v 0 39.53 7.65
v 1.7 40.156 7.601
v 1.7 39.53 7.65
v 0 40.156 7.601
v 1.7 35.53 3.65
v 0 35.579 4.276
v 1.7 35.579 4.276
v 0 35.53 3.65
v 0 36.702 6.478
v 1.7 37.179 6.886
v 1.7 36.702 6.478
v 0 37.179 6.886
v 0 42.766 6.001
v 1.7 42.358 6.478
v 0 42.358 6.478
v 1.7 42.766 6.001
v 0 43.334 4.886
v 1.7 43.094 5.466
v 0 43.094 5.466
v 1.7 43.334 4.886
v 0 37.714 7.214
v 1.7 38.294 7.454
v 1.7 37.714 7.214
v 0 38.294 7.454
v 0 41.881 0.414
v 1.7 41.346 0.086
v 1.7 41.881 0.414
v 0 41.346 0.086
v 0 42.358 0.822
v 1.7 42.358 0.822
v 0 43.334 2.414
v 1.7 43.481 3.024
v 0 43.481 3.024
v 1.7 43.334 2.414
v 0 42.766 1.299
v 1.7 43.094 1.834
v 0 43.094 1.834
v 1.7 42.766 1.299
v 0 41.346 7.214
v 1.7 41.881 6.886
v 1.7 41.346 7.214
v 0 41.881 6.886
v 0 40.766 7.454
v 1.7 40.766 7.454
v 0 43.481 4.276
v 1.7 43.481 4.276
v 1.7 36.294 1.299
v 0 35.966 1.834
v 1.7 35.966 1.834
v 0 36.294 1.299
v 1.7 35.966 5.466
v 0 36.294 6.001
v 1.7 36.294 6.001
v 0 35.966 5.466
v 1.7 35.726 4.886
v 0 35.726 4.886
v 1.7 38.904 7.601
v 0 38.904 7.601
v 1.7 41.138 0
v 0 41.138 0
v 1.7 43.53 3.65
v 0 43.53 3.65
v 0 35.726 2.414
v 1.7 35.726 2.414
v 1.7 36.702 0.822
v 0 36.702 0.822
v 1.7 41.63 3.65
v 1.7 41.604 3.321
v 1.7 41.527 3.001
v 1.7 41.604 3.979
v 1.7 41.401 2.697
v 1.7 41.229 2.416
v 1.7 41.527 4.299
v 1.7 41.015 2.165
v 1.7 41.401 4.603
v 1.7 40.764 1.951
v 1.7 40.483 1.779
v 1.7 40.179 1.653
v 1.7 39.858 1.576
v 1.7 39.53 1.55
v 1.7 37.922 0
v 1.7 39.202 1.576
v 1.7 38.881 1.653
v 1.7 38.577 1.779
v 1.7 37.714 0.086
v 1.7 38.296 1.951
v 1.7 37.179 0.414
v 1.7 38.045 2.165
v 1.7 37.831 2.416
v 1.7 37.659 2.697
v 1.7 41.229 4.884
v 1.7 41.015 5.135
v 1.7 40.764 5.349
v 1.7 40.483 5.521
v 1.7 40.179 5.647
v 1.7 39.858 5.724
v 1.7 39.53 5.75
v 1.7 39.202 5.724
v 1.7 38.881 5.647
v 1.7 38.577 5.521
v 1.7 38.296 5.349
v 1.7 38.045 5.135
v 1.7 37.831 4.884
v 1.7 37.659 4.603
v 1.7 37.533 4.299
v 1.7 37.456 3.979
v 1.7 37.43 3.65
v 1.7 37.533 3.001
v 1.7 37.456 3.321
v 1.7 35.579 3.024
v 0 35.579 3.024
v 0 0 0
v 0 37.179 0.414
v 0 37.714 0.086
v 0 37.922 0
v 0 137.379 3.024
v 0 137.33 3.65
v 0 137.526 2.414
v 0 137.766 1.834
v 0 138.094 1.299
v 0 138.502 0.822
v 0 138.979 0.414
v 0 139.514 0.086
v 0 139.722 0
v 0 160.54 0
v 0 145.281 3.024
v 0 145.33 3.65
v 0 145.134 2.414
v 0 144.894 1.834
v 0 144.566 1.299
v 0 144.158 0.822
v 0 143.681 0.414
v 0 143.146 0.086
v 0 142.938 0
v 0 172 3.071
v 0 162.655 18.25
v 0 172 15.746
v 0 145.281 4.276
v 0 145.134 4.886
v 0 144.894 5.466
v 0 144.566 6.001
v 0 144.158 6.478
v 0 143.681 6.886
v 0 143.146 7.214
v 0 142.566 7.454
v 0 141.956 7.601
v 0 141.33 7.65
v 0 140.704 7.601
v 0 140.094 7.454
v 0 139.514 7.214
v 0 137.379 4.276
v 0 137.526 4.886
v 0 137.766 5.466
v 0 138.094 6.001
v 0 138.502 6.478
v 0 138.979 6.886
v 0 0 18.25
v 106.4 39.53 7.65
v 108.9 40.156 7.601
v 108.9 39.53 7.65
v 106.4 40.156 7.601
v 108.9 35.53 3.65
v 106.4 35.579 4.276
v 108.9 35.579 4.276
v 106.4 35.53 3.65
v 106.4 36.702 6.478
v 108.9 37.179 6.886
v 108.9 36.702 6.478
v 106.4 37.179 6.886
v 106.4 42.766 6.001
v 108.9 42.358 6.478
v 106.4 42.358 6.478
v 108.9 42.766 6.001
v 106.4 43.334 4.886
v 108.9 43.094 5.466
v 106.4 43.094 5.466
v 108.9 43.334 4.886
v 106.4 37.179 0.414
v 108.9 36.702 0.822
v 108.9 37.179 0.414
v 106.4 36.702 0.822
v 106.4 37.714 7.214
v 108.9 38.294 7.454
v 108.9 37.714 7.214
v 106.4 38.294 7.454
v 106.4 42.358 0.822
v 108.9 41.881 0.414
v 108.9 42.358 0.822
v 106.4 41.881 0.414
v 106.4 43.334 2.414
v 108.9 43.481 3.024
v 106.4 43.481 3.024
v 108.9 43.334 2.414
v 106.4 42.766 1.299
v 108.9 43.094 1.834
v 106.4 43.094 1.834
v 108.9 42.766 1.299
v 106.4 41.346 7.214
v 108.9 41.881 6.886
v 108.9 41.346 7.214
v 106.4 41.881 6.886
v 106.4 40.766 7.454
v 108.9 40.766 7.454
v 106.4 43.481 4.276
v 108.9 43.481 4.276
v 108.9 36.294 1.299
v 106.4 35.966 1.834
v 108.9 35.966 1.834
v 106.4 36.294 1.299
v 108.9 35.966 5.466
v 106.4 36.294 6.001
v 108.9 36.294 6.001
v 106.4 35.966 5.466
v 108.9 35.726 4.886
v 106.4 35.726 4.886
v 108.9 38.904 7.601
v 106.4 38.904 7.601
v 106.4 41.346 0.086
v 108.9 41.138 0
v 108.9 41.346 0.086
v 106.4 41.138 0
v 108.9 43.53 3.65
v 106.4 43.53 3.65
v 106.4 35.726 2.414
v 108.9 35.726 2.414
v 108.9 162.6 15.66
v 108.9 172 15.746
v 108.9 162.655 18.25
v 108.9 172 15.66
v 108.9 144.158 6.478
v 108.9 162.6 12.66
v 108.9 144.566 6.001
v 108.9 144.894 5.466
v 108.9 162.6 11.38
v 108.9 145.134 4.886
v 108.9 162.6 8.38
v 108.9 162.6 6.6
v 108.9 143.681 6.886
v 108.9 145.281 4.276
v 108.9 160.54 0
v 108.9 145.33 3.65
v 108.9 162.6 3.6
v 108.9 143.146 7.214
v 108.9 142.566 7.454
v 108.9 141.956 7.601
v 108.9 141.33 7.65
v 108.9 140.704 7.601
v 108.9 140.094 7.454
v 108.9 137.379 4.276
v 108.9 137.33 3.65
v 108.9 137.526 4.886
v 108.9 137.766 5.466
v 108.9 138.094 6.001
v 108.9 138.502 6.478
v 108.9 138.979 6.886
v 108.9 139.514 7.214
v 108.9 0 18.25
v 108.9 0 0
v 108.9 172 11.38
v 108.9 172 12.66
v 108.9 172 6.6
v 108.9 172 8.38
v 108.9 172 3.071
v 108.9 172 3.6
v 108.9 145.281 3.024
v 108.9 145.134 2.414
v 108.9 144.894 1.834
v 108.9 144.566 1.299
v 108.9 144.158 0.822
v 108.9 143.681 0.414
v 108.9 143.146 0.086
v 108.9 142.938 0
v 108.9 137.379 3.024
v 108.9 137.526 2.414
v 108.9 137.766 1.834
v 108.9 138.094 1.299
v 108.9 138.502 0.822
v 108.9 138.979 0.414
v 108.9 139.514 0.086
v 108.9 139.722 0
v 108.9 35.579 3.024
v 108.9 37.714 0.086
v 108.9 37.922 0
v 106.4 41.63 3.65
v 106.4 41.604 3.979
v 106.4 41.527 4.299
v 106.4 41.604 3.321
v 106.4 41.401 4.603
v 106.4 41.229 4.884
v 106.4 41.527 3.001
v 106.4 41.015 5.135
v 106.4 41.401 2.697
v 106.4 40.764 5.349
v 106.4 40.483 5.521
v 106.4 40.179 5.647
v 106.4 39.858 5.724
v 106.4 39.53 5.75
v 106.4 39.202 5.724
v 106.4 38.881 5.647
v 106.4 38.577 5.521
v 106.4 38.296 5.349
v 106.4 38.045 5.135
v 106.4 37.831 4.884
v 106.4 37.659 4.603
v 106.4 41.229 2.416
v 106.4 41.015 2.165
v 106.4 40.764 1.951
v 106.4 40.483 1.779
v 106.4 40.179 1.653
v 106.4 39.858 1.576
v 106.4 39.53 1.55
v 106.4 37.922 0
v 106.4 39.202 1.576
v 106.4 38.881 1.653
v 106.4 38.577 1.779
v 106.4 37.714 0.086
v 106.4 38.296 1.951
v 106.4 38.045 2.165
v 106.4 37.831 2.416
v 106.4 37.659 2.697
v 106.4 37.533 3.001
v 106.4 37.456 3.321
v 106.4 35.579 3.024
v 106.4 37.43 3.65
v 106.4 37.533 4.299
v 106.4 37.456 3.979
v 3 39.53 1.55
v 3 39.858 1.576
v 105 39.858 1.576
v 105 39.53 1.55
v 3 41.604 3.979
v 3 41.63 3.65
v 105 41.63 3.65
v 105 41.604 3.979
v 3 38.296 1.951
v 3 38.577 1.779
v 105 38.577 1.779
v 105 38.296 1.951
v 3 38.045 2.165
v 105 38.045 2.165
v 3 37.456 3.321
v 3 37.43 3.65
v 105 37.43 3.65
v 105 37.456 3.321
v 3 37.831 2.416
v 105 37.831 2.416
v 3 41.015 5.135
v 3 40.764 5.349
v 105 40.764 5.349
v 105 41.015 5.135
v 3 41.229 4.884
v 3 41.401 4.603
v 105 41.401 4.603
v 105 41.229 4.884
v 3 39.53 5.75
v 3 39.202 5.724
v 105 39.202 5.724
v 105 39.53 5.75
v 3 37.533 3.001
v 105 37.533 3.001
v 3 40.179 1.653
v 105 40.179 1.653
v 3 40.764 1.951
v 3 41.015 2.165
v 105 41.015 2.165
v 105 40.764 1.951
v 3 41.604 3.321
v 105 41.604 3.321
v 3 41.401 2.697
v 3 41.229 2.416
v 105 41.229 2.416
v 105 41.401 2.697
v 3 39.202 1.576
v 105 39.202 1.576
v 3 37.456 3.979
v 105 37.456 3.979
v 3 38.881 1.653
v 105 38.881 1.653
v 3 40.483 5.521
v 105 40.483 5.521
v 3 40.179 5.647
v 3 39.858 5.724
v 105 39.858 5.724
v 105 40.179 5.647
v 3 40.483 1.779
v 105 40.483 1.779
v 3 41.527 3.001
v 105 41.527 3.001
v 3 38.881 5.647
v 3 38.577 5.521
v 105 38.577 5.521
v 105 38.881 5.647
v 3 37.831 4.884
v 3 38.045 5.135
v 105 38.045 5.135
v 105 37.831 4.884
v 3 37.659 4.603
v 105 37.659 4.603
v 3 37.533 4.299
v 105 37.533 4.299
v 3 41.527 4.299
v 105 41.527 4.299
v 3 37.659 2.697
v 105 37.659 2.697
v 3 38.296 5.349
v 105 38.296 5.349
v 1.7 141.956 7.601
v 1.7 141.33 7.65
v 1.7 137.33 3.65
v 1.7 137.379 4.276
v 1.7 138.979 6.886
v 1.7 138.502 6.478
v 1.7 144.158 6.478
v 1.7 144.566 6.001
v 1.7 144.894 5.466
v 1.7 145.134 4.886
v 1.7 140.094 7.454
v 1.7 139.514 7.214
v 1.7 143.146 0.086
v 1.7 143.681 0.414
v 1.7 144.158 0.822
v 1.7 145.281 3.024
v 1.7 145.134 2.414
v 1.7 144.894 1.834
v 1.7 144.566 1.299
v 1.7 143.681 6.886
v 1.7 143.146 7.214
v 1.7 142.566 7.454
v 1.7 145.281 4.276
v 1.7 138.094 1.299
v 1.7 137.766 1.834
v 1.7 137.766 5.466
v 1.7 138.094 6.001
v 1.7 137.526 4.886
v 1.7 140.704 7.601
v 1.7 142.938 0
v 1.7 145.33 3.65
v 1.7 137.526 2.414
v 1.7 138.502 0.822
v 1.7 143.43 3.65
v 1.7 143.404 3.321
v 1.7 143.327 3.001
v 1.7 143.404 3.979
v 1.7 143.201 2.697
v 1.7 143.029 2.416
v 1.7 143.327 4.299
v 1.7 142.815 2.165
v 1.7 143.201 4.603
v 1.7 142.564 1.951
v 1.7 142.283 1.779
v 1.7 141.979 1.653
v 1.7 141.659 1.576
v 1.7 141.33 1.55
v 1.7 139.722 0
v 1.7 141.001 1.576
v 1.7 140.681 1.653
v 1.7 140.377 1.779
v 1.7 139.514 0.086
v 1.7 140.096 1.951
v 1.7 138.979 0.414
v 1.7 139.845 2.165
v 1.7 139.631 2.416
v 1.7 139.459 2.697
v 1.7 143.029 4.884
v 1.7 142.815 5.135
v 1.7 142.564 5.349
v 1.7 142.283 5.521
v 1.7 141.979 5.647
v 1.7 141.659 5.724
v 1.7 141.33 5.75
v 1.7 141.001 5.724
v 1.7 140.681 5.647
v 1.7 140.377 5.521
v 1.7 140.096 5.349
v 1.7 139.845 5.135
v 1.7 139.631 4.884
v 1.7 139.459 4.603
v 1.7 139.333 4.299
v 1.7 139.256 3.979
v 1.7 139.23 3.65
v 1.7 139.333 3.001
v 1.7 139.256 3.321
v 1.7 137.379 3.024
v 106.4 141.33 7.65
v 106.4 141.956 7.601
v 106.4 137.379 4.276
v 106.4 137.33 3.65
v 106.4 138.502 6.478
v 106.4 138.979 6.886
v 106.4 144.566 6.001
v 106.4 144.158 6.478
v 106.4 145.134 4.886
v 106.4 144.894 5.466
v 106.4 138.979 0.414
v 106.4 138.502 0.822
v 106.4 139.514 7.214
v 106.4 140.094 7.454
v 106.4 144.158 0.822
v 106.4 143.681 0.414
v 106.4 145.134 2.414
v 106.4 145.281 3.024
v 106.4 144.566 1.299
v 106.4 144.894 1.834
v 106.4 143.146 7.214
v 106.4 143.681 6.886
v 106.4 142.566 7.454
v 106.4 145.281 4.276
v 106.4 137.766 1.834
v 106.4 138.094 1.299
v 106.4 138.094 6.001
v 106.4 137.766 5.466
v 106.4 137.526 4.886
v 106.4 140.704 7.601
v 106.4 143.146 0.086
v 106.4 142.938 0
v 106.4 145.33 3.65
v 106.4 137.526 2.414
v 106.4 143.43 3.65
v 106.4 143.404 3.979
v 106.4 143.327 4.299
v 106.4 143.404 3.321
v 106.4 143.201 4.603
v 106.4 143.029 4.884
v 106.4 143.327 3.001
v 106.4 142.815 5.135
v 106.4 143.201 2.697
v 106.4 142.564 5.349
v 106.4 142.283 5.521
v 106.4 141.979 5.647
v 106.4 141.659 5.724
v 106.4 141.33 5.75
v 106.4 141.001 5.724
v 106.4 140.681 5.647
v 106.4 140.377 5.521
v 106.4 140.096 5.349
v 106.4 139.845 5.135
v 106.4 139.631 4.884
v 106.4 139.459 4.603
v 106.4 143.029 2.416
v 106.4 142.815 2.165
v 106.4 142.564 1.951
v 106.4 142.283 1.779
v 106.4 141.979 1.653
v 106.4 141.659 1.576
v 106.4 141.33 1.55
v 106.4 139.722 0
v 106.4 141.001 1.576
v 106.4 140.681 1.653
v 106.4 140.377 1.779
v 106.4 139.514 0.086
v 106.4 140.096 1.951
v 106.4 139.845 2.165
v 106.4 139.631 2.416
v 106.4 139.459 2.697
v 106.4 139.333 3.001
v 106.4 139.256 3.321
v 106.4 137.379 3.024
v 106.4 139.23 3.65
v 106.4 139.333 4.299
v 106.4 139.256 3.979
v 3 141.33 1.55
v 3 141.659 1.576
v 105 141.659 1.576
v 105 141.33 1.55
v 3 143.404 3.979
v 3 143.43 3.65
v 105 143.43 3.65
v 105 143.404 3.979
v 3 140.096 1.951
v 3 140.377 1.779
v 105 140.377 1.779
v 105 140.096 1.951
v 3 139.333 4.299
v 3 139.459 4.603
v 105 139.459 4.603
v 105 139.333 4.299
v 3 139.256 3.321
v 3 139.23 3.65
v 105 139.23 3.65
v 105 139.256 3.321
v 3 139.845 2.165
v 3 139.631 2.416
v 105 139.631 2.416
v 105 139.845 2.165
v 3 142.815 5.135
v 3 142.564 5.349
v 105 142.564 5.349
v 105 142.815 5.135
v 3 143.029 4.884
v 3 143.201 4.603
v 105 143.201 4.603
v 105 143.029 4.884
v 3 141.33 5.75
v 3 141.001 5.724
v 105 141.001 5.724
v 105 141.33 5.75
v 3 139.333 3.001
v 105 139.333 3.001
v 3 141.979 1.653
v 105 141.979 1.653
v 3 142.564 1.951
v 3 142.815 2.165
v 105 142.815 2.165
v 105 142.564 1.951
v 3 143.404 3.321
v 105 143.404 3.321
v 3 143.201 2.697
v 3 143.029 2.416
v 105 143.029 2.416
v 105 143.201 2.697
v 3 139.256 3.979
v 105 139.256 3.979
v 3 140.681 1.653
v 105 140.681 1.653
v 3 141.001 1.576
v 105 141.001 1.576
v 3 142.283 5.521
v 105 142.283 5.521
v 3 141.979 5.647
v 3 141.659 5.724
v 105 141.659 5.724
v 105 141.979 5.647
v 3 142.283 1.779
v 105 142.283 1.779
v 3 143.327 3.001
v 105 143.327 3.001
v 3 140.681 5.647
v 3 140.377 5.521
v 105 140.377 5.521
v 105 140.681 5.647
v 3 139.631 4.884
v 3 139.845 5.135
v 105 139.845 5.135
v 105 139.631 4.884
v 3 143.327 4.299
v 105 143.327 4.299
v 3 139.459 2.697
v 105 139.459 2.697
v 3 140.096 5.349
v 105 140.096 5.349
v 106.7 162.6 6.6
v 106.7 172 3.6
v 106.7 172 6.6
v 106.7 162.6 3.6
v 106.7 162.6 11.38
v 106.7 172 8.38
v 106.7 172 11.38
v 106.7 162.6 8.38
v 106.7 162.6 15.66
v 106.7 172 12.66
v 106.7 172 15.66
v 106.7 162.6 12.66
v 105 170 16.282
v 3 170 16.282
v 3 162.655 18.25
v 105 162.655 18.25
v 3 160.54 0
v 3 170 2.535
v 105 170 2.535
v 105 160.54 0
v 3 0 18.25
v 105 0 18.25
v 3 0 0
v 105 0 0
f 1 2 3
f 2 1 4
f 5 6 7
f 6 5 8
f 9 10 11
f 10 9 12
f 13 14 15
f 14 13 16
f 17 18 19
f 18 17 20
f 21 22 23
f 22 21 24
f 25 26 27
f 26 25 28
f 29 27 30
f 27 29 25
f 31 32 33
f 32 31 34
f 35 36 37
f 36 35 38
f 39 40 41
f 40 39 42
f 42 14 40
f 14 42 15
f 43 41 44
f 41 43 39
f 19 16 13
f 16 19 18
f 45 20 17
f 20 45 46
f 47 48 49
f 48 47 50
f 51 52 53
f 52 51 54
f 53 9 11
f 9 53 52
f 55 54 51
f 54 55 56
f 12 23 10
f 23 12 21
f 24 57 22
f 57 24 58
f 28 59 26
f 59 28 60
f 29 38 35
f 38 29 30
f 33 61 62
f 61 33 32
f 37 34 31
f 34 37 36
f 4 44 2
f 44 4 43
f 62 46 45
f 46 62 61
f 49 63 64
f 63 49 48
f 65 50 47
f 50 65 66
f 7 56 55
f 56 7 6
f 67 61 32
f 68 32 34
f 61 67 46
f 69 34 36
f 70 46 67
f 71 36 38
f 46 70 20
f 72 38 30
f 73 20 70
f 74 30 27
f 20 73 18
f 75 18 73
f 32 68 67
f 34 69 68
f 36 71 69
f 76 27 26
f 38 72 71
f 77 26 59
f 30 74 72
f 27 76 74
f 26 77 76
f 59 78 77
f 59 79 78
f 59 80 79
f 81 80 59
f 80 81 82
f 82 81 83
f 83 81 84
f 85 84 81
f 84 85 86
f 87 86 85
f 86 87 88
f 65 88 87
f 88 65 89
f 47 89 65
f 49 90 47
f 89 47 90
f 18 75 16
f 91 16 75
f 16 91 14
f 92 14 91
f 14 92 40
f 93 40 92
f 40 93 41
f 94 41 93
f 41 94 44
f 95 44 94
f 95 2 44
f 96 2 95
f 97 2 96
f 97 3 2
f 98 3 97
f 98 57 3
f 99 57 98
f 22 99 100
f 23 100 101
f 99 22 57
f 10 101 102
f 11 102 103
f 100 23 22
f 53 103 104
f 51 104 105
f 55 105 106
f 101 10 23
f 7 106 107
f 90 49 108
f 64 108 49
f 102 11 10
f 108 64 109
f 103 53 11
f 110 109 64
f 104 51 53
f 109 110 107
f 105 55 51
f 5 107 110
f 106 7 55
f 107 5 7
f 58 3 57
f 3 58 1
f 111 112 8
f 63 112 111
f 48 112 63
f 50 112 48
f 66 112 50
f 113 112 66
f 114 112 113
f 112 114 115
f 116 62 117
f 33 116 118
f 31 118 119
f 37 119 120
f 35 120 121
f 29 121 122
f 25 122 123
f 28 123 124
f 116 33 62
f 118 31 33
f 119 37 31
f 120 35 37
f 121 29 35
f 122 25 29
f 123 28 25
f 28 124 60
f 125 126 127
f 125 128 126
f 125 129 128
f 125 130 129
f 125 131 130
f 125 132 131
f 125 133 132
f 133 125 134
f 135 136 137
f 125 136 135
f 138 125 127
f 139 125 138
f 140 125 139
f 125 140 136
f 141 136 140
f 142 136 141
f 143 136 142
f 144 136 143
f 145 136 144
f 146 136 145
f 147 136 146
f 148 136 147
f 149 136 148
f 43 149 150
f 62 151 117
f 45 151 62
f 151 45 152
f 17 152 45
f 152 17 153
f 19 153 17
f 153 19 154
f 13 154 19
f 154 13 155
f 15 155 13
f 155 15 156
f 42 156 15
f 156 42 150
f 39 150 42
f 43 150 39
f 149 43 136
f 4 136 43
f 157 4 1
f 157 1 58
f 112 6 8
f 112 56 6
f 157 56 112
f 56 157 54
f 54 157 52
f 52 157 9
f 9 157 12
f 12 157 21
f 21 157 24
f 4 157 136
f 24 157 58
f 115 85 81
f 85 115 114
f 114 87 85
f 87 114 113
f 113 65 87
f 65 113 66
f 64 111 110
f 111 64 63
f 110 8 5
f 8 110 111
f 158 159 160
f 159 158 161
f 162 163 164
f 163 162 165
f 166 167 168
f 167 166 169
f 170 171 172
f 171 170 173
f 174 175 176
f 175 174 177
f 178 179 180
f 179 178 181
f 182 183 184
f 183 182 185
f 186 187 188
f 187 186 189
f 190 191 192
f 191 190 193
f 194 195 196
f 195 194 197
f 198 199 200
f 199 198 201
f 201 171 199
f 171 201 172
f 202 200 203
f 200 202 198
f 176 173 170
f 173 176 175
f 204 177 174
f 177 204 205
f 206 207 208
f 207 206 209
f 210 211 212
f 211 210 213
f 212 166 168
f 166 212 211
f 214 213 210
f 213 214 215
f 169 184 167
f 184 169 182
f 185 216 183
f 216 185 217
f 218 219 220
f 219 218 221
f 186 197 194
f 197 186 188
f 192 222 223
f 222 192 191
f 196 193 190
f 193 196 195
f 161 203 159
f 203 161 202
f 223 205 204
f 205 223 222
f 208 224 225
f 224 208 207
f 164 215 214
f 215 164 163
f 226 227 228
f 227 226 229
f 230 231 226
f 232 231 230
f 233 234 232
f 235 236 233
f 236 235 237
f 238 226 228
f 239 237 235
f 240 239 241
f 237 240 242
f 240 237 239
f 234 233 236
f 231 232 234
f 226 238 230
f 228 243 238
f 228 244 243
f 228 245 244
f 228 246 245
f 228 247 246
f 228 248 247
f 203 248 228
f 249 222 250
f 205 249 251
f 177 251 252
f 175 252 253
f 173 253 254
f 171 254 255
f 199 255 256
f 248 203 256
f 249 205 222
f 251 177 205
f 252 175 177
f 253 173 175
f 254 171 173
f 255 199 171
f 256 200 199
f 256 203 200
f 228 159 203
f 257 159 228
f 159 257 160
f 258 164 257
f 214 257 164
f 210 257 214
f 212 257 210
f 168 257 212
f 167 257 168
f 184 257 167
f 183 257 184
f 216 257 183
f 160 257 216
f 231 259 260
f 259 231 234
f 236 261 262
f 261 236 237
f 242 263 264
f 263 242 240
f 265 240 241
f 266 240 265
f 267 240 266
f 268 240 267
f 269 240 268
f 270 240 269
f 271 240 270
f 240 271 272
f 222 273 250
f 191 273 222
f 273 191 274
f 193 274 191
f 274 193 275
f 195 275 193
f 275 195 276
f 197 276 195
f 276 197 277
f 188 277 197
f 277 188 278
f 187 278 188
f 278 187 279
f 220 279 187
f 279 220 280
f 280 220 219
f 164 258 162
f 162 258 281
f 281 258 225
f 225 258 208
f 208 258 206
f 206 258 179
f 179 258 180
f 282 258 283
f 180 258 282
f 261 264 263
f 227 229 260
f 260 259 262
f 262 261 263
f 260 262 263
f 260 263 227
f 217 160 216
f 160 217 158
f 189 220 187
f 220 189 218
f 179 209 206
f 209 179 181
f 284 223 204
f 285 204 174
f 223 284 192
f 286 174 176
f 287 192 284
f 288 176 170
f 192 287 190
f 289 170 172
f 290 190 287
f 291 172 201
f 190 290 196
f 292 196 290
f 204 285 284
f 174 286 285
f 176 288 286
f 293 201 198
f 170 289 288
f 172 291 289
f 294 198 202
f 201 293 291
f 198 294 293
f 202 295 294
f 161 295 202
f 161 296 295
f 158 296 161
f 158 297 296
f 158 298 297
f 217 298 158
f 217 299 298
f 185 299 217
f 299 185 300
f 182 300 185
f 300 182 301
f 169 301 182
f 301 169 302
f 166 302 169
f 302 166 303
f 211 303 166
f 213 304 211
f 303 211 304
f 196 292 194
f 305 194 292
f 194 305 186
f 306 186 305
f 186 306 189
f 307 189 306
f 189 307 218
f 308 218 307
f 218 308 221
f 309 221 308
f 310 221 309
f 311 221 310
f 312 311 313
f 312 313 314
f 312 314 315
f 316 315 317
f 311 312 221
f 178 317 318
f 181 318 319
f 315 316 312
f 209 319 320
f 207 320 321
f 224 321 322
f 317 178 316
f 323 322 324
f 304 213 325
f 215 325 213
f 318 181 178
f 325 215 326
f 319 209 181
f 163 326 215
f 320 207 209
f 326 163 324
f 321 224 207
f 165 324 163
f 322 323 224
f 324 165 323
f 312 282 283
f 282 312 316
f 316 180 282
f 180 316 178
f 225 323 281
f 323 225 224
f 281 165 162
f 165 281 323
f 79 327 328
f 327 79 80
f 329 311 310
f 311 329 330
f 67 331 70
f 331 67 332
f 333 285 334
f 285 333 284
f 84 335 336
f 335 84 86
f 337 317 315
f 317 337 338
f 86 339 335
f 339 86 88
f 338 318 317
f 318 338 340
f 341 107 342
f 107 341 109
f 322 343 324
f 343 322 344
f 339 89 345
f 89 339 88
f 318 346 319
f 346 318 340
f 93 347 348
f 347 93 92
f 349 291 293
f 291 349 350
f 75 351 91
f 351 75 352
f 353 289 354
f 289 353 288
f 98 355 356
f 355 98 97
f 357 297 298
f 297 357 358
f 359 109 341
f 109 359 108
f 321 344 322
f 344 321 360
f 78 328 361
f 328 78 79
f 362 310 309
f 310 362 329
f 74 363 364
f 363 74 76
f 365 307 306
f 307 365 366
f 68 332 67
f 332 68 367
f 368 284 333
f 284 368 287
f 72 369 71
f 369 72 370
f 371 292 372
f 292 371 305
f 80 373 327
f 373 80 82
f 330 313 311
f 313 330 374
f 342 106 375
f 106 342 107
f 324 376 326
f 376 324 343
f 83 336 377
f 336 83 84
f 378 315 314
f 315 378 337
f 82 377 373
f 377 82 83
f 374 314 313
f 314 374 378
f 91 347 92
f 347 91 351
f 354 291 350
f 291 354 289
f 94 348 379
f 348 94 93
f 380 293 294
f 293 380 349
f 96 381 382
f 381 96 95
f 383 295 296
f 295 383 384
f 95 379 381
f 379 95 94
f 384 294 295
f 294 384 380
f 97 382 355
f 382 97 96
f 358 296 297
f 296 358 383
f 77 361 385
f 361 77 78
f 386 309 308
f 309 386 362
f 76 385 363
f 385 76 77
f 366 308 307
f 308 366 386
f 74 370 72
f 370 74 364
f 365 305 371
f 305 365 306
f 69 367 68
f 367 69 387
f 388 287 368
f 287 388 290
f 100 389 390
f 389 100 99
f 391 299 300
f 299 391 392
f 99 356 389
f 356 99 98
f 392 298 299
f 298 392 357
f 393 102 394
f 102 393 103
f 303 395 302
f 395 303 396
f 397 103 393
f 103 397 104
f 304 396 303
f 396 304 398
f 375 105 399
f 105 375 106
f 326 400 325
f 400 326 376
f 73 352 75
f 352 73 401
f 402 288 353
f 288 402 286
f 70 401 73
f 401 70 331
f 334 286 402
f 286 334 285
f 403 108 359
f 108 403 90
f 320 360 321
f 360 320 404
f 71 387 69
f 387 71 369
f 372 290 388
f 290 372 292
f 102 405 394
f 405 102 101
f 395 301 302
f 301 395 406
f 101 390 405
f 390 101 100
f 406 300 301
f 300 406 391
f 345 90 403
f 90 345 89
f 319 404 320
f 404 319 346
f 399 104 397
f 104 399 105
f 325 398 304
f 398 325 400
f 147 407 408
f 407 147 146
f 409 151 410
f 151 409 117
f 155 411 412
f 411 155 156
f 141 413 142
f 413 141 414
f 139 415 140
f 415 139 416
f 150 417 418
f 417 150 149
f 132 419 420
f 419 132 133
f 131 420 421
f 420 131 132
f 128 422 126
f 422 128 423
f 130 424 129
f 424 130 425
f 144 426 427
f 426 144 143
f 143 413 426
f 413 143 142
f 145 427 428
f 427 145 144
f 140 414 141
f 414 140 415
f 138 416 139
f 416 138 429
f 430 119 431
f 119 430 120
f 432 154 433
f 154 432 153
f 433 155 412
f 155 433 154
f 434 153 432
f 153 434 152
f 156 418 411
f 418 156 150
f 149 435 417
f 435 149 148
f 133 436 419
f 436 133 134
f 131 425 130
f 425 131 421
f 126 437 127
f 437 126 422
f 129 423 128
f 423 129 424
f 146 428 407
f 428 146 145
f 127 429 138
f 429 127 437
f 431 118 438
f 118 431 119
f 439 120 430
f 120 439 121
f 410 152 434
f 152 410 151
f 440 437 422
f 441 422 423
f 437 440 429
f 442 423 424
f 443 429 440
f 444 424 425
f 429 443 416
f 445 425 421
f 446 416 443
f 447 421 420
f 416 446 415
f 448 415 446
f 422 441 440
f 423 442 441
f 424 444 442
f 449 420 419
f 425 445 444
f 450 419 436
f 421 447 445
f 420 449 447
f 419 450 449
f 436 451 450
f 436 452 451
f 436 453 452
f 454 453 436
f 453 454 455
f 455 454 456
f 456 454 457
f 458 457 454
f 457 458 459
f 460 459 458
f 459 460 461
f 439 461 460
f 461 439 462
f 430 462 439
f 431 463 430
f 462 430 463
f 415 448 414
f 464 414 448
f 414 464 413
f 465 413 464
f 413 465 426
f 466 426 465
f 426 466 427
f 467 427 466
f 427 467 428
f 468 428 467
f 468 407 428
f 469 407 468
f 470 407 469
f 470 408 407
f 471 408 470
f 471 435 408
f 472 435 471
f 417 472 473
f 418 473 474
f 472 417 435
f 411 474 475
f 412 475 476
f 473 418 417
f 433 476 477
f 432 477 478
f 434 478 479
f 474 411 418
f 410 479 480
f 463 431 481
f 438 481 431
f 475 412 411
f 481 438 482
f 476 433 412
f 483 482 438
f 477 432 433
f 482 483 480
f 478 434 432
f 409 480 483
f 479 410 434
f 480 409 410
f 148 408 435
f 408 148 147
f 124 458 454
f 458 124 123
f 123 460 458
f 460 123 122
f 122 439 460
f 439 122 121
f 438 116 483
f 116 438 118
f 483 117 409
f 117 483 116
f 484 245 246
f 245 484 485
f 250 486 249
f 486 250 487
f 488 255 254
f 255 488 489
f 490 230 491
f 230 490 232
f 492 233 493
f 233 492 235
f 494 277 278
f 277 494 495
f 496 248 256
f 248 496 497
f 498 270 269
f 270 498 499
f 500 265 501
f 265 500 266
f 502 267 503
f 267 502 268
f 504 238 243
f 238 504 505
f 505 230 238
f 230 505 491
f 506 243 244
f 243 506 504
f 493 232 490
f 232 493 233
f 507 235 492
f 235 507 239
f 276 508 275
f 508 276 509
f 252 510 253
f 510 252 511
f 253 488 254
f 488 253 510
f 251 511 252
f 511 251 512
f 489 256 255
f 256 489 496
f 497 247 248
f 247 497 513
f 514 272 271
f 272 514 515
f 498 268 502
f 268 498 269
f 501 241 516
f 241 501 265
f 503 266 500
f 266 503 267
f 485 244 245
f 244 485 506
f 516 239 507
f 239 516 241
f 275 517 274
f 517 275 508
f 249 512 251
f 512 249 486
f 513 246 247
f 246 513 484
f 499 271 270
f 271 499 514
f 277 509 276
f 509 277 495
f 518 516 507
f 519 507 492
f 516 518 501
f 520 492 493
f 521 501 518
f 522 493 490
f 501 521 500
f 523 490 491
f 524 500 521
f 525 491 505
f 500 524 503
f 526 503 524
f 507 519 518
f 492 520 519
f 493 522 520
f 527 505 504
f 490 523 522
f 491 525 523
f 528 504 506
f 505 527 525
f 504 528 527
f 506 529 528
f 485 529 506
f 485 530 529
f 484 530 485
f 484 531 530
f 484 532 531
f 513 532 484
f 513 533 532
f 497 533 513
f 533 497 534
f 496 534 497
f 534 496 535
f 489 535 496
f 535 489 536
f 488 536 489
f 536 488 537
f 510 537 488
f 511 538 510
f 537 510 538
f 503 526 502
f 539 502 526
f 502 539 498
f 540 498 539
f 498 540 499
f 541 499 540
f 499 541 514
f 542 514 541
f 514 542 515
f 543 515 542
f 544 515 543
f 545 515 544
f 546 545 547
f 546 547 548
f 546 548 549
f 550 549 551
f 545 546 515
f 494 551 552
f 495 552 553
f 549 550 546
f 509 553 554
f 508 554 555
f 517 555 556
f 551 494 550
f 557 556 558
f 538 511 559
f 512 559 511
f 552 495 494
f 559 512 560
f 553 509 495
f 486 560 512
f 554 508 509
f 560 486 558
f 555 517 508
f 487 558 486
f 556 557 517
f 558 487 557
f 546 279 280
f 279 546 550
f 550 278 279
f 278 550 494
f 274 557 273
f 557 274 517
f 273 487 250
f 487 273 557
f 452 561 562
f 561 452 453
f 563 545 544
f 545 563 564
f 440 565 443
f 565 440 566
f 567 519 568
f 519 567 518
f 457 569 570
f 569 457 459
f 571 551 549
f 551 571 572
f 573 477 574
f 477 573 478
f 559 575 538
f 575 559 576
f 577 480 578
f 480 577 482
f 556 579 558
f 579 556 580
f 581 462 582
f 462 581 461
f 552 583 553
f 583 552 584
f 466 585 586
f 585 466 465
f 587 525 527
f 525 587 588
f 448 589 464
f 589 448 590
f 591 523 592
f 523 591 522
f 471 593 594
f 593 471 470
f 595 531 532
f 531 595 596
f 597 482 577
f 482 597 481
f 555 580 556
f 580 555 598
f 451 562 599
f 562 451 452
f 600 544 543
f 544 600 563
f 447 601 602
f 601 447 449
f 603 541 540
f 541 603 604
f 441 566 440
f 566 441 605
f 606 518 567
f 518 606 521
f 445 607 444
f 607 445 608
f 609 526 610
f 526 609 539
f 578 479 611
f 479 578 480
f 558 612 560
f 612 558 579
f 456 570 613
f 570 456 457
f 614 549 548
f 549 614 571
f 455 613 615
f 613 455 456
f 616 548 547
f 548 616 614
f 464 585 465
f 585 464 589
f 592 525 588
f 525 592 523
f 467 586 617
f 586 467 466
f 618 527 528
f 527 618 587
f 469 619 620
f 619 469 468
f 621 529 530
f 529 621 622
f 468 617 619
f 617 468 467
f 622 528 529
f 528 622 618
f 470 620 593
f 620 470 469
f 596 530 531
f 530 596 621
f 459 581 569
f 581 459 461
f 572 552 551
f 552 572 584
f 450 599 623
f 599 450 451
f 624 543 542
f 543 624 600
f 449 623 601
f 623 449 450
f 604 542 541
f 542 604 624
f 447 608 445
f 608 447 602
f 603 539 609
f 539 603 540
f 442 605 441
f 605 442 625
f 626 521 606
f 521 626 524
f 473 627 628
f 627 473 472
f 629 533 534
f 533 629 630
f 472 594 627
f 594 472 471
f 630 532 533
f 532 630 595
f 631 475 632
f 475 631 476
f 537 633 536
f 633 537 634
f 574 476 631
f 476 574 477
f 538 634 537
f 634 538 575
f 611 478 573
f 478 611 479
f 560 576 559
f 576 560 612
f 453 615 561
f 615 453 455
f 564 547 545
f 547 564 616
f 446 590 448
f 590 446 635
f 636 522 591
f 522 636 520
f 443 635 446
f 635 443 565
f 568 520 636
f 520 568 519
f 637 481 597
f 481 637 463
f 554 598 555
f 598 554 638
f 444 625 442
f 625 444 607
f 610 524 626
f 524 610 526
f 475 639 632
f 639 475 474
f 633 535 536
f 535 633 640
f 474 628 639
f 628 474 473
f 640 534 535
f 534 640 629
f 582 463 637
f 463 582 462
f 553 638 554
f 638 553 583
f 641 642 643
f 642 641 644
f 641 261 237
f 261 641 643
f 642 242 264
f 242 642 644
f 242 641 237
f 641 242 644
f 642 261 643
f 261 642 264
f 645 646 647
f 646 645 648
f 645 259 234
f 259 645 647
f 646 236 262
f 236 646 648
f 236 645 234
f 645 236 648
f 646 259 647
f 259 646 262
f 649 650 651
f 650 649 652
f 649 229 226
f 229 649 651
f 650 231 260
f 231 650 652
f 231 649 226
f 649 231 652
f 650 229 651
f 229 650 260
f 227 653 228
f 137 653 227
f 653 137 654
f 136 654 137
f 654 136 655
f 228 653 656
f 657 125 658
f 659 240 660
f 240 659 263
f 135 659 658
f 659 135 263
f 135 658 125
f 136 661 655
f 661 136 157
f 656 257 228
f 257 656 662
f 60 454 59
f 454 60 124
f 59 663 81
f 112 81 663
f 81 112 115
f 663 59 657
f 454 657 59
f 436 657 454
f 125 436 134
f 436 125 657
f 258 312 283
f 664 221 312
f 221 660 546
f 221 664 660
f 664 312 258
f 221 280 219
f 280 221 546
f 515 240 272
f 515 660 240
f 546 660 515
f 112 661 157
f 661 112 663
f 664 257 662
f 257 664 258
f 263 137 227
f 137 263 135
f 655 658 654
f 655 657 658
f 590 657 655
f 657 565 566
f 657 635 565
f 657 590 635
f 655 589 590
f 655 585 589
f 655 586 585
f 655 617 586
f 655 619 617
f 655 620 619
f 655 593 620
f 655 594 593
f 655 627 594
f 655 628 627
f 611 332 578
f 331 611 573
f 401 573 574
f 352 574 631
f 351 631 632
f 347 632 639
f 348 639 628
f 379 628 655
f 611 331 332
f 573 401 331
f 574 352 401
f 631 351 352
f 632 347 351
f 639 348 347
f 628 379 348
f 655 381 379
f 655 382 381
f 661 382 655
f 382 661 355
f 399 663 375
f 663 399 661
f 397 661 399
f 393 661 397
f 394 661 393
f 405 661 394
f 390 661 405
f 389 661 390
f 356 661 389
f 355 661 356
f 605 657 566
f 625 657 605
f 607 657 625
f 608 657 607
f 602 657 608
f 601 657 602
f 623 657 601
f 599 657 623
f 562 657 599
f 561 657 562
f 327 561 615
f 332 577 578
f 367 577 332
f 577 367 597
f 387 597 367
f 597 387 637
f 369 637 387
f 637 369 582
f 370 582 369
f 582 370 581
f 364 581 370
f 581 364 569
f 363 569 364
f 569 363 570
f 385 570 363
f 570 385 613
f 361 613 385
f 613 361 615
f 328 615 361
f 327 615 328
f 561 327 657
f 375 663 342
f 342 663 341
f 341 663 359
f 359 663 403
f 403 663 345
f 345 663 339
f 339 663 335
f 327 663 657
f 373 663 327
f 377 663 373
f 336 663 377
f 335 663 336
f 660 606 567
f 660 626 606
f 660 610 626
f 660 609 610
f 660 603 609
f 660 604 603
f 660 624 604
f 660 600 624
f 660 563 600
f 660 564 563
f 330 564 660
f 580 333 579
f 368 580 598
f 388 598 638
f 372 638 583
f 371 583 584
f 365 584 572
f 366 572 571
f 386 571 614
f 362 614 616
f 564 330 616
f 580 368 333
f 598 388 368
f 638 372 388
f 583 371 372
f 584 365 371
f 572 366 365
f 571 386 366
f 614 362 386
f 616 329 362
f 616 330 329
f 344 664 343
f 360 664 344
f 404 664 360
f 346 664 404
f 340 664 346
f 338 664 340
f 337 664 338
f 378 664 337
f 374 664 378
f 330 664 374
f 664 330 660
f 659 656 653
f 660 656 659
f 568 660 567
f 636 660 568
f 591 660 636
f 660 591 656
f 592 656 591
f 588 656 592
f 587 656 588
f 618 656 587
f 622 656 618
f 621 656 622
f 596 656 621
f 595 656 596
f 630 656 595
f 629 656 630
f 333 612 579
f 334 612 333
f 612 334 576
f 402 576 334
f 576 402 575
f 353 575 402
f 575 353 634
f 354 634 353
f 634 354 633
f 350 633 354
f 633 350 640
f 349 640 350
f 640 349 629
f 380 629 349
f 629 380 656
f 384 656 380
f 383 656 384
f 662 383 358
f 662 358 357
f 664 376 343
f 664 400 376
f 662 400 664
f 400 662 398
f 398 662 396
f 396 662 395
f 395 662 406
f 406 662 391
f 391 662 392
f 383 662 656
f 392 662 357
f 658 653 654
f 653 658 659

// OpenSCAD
$fn=40;


module srubki()
{
    translate([-1,0,5.8-2.15])
        rotate([0,90,0])
            cylinder(r=2.1,h=111);

    translate([0,0,5.8-2.15])
    {
        rotate([0,90,0])
            cylinder(r=4,h=1.7);

        translate([108.9-2.5,0,0])
            rotate([0,90,0])
                cylinder(r=4,h=2.5);
    }

}

module srubki2()
{
    translate([0,37.38+2.15,0])
    {
        srubki();

        translate([0,101.8,0])
        {
            srubki();
        }
    }
}

module zabki()
{
    translate([106.7,172-9.4,3.6])
    {
        cube([2.2,9.4,3]);
        
        translate([0,0,2.42+2.36])
            cube([2.2,9.4,3]);
        
        translate([0,0,2.42+2.36*2+1.92])
            cube([2.2,9.4,3]);
    }
}

module skosy()
{
    translate([0,130,27])
        rotate([-15,0,0])
            cube([110.9,50,10]);

    translate([0,132,-18])
        rotate([15,0,0])
            cube([110.9,50,10]);

}

//srubki2();
//zabki();
//skosy();

difference()
{
    cube([108.9,172,18.25]);

    translate([3,0,-1])
        cube([102,170,20]);

    srubki2();


    zabki();

    skosy();
}
